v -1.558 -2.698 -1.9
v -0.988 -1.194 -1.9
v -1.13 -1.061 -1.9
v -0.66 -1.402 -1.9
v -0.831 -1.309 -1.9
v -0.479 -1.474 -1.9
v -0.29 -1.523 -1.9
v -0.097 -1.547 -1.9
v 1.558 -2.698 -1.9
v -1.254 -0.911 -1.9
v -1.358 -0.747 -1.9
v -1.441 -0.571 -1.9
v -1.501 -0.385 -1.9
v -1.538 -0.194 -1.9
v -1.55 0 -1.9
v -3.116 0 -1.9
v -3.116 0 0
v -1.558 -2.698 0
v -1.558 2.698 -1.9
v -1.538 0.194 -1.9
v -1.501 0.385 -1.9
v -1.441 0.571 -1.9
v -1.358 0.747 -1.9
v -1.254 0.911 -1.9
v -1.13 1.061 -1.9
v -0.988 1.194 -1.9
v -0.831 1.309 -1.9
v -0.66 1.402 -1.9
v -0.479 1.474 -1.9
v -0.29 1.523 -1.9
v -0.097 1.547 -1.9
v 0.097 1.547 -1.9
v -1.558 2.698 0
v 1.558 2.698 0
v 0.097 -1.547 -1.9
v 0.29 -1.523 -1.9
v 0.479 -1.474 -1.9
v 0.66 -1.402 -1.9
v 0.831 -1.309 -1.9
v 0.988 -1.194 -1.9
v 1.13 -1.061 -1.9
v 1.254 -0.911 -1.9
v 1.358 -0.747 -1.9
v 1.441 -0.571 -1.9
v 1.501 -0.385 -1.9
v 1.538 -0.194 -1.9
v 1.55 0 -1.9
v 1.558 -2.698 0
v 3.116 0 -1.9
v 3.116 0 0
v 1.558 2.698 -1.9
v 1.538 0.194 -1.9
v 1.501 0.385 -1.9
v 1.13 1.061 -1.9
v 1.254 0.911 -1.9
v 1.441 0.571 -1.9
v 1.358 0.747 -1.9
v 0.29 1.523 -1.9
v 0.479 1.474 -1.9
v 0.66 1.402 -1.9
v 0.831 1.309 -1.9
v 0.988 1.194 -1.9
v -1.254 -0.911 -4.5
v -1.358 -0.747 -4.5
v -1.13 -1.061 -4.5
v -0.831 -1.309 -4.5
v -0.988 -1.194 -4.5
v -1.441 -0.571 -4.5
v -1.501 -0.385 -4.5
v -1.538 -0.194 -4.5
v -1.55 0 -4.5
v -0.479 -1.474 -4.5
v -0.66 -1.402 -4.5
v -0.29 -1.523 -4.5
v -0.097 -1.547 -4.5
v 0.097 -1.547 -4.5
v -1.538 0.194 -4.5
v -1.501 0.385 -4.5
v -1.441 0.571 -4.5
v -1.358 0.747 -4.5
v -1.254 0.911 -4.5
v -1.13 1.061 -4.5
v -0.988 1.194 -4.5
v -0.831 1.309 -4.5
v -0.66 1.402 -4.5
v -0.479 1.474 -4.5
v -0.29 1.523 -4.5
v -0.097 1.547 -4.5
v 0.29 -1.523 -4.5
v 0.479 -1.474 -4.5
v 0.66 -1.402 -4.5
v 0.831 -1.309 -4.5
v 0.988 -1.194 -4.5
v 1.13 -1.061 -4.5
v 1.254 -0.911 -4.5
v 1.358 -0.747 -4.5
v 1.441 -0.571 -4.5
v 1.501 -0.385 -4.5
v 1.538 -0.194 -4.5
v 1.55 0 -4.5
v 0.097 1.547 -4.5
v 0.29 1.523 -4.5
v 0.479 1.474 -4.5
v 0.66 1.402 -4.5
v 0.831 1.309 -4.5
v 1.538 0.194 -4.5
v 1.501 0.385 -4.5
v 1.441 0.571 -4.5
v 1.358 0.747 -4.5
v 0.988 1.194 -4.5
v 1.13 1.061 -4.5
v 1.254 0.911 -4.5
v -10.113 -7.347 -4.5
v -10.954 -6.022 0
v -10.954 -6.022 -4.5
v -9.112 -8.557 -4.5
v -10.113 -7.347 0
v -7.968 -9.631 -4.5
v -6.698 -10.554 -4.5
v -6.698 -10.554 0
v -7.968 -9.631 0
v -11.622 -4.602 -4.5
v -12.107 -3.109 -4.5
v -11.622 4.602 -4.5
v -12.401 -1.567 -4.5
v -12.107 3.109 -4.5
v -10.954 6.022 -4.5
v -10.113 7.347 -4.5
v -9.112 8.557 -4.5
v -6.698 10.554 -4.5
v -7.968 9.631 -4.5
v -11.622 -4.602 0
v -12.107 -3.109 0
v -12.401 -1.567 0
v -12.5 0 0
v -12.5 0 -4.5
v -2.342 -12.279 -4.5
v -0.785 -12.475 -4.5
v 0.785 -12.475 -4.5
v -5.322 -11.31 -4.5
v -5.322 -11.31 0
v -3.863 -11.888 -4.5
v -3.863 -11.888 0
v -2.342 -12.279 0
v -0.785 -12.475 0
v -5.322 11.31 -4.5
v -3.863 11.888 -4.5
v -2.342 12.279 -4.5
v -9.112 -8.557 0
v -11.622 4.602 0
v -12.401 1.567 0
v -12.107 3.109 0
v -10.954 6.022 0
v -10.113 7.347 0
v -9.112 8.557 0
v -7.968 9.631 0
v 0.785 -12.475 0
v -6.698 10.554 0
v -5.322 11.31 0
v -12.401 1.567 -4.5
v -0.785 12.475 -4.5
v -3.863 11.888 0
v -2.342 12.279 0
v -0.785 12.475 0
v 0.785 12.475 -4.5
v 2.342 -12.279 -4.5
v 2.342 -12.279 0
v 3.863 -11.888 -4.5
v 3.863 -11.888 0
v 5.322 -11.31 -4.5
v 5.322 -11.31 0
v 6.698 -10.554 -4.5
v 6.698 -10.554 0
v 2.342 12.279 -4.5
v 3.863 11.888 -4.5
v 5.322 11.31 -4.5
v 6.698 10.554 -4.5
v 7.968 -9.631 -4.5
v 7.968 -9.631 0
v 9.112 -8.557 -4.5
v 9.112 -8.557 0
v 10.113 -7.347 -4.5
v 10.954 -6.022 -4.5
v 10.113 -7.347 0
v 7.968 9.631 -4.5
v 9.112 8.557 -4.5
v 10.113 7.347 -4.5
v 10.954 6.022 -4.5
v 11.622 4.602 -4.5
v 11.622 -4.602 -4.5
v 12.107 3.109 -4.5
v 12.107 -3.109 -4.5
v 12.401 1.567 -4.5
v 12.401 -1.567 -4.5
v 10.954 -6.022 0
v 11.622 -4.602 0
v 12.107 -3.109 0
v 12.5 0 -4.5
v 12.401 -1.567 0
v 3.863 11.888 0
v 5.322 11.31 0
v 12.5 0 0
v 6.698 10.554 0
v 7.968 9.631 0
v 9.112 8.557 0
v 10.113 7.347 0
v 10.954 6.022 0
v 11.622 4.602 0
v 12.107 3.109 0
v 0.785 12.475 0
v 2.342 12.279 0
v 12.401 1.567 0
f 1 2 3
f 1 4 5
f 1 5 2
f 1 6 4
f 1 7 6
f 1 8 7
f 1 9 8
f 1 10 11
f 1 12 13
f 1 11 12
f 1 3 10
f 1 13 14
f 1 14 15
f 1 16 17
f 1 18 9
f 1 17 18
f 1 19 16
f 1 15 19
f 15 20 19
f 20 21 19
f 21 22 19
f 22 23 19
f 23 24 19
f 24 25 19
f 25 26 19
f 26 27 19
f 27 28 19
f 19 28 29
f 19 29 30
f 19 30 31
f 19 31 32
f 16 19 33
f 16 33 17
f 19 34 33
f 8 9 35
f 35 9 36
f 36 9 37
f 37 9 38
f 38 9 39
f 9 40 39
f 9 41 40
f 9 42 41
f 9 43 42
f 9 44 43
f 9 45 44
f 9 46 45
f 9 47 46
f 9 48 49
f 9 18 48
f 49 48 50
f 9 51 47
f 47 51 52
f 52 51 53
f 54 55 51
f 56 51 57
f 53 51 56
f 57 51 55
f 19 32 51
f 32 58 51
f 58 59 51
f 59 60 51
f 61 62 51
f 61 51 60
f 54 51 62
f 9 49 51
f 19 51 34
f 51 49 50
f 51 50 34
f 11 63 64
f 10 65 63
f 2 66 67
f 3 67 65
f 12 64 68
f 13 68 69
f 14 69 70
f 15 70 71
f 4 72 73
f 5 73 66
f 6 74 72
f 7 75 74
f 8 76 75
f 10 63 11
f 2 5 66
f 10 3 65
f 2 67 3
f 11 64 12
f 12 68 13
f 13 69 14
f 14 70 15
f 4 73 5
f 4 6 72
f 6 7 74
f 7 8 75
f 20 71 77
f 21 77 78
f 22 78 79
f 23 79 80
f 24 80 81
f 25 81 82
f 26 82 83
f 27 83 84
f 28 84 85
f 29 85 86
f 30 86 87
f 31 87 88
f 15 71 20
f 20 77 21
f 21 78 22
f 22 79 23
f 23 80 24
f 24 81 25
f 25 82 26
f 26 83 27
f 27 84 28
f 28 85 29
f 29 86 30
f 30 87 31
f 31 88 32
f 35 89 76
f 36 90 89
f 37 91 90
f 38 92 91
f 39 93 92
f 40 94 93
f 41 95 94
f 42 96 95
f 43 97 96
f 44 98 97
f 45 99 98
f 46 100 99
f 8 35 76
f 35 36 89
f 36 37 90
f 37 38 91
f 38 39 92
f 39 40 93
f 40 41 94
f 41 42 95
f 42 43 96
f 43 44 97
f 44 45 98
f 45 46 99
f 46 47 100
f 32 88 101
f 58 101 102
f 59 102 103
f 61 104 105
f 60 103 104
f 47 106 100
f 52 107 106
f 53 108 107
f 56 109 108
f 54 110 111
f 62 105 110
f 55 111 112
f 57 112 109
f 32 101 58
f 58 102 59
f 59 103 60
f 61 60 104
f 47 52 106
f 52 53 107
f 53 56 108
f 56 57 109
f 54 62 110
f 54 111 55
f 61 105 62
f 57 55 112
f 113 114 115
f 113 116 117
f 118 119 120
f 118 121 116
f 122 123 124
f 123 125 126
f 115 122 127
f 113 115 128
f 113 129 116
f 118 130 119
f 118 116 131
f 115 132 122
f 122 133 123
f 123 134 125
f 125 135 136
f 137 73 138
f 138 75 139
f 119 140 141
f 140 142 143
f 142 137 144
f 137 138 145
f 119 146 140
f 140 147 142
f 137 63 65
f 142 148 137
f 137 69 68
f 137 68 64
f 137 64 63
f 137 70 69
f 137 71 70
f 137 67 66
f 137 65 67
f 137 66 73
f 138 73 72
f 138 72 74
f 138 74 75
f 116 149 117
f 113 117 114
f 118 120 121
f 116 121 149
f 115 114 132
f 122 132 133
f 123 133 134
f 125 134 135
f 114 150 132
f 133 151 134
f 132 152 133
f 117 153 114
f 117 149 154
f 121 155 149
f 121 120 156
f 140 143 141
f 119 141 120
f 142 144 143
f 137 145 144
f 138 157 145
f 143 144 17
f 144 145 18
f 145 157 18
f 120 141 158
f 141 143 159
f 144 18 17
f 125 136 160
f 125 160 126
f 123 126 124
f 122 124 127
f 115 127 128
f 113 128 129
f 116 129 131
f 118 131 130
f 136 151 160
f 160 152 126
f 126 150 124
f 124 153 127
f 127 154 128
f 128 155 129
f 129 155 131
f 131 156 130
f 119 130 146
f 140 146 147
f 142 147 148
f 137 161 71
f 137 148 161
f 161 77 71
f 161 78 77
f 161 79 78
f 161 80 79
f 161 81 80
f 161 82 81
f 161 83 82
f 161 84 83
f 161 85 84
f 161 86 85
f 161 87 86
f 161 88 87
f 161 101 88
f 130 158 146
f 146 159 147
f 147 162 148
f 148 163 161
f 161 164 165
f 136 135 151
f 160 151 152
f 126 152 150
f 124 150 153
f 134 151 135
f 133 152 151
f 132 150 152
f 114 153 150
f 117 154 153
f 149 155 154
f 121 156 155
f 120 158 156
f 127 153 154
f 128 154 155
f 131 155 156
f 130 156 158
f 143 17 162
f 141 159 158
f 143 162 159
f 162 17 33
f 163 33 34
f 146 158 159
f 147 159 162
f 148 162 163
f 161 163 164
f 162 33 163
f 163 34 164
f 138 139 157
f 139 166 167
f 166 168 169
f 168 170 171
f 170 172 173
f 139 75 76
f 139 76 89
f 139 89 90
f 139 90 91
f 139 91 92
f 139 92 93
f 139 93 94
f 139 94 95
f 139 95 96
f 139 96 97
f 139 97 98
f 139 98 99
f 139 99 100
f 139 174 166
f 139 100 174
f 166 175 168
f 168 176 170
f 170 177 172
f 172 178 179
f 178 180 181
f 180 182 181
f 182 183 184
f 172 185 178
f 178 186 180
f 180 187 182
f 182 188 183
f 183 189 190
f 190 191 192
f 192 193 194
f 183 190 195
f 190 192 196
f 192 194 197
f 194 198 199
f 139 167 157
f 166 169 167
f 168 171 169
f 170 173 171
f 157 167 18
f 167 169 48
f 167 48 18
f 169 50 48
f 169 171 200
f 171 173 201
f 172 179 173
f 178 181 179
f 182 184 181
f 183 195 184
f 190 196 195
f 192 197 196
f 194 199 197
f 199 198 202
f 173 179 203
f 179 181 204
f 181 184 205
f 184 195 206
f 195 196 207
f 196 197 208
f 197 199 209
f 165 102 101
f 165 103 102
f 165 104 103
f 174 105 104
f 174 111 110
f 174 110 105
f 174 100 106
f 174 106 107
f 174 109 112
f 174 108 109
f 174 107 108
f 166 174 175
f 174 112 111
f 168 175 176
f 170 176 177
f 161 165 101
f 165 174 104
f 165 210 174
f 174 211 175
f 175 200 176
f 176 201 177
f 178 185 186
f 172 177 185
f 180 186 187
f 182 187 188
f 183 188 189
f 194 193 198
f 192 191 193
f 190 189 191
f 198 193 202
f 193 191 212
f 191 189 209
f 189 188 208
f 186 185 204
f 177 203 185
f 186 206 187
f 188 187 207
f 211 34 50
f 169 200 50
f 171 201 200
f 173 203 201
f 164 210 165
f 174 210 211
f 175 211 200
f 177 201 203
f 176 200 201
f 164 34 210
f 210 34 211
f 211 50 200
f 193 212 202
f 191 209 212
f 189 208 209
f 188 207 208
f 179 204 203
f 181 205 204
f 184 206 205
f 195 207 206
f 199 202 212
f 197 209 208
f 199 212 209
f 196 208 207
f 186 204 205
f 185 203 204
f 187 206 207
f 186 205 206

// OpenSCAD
$fn = 50;

difference() {
	union() {
		translate(v = [0, 0, -4.5]) {
			cylinder(h = 4.5, r = 12.5);
		}
	}
	union() {
		translate(v = [0, 0, 0]) {
			rotate(a = [0, 0, 0]) {
				difference() {
					union() {
						translate(v = [0, 0, -1.9]) {
							linear_extrude(height = 1.9) {
								polygon(points = [[3.1158, 0.0], [1.5579000000000005, 2.698361953111554], [-1.5578999999999994, 2.6983619531115544], [-3.1158, 3.815754496783323e-16], [-1.5579000000000014, -2.6983619531115535], [1.557899999999998, -2.6983619531115552]]);
							}
						}
					}
					union();
				}
			}
		}
		#translate(v = [0, 0, -100.0]) {
			cylinder(h = 200, r = 1.55);
		}
	}
}
